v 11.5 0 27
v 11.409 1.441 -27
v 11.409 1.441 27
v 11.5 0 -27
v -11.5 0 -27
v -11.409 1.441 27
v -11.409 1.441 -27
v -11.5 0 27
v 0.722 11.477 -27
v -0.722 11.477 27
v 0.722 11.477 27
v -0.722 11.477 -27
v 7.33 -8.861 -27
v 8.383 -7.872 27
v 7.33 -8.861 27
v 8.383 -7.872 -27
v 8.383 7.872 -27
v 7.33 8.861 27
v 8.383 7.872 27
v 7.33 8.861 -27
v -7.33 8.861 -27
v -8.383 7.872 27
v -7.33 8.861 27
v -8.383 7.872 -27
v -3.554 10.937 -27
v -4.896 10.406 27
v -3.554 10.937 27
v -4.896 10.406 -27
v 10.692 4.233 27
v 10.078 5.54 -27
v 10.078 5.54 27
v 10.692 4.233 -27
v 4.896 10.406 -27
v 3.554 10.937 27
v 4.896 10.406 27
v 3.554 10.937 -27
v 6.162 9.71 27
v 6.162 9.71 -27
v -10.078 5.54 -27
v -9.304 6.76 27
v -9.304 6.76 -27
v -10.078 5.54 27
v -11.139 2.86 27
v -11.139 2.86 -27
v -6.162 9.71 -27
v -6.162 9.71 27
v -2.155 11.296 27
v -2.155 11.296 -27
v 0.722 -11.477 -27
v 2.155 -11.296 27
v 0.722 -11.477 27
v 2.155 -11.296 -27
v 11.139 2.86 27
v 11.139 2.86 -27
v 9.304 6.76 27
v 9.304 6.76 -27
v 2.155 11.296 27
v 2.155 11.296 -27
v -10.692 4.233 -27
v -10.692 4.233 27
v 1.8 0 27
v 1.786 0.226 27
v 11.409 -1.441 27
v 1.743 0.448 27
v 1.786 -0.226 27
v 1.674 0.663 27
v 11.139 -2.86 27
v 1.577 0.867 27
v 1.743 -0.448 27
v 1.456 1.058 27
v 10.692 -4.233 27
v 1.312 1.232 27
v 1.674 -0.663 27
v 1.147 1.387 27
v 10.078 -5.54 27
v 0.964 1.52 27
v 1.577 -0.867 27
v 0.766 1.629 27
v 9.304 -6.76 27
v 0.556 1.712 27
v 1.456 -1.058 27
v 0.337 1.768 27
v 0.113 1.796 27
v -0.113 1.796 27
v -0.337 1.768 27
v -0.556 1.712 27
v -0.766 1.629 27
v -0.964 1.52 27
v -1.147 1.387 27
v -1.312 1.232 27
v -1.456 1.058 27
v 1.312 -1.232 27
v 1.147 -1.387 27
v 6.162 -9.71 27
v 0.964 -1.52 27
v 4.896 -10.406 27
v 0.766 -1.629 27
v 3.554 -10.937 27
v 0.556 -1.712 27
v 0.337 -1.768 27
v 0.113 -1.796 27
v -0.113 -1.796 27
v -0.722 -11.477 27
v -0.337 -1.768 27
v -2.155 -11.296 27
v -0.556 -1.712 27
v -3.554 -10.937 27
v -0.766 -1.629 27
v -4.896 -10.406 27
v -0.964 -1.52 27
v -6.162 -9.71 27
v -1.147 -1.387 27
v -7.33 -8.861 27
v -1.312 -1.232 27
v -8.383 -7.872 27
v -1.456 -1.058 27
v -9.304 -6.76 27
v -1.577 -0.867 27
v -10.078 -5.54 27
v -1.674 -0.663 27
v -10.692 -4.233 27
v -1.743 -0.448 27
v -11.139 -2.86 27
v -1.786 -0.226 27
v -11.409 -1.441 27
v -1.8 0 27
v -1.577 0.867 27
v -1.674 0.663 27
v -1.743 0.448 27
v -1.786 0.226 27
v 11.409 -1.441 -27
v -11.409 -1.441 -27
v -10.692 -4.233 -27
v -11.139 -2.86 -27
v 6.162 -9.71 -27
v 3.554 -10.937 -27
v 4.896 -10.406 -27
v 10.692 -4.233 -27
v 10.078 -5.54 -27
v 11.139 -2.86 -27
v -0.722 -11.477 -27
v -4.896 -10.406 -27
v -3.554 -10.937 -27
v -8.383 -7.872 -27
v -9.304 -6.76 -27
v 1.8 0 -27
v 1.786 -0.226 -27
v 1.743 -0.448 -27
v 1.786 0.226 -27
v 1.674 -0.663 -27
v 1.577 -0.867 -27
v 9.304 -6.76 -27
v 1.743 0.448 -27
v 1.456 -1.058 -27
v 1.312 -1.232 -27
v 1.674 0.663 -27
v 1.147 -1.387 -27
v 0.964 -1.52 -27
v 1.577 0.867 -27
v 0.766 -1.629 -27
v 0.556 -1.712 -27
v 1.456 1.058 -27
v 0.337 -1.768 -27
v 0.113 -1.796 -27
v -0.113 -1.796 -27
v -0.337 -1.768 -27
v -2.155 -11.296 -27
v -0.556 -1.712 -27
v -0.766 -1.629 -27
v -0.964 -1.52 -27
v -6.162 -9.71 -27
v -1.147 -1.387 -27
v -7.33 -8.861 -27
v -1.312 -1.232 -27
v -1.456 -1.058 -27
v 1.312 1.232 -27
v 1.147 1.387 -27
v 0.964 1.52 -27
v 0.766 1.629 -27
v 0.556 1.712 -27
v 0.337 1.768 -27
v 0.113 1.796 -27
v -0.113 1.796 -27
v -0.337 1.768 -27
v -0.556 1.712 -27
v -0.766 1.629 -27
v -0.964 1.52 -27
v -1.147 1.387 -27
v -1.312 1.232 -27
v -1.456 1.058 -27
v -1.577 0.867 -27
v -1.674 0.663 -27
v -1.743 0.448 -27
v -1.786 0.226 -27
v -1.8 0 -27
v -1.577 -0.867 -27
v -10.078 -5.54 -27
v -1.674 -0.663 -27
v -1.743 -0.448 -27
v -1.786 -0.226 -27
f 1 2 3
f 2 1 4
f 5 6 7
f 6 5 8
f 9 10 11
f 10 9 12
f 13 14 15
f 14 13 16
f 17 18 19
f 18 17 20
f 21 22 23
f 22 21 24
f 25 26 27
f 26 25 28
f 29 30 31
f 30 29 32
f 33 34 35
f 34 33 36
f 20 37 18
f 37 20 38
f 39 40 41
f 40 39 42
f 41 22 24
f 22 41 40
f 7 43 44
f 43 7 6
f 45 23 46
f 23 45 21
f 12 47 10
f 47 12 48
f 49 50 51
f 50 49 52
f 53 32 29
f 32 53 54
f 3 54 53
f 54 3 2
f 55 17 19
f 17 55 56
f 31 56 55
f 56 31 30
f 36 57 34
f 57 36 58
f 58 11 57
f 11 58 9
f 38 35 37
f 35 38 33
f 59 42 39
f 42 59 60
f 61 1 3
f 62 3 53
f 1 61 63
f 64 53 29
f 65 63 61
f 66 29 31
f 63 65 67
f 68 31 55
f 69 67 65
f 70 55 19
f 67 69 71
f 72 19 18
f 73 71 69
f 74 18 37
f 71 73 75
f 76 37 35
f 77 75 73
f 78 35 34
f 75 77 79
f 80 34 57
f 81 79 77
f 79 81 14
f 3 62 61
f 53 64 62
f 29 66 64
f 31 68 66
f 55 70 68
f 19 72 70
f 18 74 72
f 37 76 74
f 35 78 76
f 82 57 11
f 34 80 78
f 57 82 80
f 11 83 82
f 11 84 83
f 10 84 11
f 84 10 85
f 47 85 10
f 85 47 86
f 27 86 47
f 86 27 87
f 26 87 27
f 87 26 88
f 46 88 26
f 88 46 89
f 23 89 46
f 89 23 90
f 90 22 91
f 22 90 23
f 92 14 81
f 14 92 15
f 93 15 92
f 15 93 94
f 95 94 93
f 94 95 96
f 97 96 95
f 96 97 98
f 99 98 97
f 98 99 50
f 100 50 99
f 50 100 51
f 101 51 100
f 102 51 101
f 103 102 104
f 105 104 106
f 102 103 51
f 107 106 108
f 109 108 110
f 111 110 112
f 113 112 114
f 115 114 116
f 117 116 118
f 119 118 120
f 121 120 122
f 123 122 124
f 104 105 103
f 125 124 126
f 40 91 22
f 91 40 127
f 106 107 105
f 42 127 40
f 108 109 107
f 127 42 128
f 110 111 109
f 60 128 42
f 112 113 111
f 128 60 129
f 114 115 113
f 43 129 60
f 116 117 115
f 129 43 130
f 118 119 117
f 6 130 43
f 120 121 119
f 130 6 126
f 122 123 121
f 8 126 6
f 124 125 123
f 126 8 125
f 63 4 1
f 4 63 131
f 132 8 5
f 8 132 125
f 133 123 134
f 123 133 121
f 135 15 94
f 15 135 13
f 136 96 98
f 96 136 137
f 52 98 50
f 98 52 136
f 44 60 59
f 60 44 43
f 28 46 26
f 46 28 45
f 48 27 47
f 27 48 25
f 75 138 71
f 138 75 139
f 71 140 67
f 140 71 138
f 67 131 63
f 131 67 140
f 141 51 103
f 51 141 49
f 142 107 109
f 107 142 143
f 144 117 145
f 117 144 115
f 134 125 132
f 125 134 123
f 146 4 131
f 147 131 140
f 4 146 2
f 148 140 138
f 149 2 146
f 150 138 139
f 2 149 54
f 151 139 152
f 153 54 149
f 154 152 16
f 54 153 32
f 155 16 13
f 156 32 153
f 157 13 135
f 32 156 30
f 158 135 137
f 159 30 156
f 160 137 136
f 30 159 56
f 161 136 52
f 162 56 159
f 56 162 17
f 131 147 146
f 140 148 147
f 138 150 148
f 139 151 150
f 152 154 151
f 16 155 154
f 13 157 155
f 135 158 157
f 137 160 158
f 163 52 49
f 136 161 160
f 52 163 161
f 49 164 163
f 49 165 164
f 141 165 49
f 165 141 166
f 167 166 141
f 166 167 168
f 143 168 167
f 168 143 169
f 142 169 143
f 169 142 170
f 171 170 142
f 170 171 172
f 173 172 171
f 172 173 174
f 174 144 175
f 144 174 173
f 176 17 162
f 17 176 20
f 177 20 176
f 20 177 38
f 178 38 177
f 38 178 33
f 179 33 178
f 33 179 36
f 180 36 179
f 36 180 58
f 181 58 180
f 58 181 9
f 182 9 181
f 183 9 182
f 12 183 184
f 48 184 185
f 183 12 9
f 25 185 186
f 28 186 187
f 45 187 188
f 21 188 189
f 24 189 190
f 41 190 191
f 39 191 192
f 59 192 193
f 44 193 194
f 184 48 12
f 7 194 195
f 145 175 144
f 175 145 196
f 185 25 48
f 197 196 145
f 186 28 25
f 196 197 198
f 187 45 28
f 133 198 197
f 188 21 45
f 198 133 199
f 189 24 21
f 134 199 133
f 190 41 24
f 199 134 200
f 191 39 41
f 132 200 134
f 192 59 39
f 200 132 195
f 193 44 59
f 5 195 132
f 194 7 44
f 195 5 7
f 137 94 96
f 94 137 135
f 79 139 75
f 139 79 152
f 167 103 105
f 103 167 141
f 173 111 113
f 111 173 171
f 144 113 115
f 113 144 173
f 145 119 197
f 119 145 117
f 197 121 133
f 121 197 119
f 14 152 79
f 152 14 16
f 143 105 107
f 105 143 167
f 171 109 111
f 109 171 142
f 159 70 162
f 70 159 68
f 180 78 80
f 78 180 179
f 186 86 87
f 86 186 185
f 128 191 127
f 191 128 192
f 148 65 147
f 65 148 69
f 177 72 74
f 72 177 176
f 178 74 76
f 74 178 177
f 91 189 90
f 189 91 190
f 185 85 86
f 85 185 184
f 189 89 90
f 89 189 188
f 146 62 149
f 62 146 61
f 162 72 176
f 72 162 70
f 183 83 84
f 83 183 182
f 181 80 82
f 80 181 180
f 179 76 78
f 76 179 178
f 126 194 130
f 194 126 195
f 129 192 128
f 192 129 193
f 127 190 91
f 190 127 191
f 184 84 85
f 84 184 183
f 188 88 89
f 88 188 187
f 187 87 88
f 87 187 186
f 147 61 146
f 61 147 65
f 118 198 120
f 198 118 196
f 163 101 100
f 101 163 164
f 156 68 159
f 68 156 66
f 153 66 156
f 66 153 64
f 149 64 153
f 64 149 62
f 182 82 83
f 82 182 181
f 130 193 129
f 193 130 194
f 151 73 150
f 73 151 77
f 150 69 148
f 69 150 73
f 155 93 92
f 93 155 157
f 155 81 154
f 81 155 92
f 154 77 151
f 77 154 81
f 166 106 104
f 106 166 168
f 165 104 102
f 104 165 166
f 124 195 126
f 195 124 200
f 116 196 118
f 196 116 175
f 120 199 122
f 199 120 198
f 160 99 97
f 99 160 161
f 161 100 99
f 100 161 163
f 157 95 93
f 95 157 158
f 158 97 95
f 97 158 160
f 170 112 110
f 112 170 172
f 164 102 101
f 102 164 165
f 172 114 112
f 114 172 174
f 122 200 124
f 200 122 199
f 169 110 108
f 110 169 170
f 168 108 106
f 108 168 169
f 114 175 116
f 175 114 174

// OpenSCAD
$fn = 50;


difference() {
	union() {
		translate(v = [0, 0, -27.0000000000]) {
			cylinder(h = 54, r = 11.5000000000);
		}
	}
	union() {
		translate(v = [0, 0, -100.0000000000]) {
			cylinder(h = 200, r = 1.8000000000);
		}
	}
}
